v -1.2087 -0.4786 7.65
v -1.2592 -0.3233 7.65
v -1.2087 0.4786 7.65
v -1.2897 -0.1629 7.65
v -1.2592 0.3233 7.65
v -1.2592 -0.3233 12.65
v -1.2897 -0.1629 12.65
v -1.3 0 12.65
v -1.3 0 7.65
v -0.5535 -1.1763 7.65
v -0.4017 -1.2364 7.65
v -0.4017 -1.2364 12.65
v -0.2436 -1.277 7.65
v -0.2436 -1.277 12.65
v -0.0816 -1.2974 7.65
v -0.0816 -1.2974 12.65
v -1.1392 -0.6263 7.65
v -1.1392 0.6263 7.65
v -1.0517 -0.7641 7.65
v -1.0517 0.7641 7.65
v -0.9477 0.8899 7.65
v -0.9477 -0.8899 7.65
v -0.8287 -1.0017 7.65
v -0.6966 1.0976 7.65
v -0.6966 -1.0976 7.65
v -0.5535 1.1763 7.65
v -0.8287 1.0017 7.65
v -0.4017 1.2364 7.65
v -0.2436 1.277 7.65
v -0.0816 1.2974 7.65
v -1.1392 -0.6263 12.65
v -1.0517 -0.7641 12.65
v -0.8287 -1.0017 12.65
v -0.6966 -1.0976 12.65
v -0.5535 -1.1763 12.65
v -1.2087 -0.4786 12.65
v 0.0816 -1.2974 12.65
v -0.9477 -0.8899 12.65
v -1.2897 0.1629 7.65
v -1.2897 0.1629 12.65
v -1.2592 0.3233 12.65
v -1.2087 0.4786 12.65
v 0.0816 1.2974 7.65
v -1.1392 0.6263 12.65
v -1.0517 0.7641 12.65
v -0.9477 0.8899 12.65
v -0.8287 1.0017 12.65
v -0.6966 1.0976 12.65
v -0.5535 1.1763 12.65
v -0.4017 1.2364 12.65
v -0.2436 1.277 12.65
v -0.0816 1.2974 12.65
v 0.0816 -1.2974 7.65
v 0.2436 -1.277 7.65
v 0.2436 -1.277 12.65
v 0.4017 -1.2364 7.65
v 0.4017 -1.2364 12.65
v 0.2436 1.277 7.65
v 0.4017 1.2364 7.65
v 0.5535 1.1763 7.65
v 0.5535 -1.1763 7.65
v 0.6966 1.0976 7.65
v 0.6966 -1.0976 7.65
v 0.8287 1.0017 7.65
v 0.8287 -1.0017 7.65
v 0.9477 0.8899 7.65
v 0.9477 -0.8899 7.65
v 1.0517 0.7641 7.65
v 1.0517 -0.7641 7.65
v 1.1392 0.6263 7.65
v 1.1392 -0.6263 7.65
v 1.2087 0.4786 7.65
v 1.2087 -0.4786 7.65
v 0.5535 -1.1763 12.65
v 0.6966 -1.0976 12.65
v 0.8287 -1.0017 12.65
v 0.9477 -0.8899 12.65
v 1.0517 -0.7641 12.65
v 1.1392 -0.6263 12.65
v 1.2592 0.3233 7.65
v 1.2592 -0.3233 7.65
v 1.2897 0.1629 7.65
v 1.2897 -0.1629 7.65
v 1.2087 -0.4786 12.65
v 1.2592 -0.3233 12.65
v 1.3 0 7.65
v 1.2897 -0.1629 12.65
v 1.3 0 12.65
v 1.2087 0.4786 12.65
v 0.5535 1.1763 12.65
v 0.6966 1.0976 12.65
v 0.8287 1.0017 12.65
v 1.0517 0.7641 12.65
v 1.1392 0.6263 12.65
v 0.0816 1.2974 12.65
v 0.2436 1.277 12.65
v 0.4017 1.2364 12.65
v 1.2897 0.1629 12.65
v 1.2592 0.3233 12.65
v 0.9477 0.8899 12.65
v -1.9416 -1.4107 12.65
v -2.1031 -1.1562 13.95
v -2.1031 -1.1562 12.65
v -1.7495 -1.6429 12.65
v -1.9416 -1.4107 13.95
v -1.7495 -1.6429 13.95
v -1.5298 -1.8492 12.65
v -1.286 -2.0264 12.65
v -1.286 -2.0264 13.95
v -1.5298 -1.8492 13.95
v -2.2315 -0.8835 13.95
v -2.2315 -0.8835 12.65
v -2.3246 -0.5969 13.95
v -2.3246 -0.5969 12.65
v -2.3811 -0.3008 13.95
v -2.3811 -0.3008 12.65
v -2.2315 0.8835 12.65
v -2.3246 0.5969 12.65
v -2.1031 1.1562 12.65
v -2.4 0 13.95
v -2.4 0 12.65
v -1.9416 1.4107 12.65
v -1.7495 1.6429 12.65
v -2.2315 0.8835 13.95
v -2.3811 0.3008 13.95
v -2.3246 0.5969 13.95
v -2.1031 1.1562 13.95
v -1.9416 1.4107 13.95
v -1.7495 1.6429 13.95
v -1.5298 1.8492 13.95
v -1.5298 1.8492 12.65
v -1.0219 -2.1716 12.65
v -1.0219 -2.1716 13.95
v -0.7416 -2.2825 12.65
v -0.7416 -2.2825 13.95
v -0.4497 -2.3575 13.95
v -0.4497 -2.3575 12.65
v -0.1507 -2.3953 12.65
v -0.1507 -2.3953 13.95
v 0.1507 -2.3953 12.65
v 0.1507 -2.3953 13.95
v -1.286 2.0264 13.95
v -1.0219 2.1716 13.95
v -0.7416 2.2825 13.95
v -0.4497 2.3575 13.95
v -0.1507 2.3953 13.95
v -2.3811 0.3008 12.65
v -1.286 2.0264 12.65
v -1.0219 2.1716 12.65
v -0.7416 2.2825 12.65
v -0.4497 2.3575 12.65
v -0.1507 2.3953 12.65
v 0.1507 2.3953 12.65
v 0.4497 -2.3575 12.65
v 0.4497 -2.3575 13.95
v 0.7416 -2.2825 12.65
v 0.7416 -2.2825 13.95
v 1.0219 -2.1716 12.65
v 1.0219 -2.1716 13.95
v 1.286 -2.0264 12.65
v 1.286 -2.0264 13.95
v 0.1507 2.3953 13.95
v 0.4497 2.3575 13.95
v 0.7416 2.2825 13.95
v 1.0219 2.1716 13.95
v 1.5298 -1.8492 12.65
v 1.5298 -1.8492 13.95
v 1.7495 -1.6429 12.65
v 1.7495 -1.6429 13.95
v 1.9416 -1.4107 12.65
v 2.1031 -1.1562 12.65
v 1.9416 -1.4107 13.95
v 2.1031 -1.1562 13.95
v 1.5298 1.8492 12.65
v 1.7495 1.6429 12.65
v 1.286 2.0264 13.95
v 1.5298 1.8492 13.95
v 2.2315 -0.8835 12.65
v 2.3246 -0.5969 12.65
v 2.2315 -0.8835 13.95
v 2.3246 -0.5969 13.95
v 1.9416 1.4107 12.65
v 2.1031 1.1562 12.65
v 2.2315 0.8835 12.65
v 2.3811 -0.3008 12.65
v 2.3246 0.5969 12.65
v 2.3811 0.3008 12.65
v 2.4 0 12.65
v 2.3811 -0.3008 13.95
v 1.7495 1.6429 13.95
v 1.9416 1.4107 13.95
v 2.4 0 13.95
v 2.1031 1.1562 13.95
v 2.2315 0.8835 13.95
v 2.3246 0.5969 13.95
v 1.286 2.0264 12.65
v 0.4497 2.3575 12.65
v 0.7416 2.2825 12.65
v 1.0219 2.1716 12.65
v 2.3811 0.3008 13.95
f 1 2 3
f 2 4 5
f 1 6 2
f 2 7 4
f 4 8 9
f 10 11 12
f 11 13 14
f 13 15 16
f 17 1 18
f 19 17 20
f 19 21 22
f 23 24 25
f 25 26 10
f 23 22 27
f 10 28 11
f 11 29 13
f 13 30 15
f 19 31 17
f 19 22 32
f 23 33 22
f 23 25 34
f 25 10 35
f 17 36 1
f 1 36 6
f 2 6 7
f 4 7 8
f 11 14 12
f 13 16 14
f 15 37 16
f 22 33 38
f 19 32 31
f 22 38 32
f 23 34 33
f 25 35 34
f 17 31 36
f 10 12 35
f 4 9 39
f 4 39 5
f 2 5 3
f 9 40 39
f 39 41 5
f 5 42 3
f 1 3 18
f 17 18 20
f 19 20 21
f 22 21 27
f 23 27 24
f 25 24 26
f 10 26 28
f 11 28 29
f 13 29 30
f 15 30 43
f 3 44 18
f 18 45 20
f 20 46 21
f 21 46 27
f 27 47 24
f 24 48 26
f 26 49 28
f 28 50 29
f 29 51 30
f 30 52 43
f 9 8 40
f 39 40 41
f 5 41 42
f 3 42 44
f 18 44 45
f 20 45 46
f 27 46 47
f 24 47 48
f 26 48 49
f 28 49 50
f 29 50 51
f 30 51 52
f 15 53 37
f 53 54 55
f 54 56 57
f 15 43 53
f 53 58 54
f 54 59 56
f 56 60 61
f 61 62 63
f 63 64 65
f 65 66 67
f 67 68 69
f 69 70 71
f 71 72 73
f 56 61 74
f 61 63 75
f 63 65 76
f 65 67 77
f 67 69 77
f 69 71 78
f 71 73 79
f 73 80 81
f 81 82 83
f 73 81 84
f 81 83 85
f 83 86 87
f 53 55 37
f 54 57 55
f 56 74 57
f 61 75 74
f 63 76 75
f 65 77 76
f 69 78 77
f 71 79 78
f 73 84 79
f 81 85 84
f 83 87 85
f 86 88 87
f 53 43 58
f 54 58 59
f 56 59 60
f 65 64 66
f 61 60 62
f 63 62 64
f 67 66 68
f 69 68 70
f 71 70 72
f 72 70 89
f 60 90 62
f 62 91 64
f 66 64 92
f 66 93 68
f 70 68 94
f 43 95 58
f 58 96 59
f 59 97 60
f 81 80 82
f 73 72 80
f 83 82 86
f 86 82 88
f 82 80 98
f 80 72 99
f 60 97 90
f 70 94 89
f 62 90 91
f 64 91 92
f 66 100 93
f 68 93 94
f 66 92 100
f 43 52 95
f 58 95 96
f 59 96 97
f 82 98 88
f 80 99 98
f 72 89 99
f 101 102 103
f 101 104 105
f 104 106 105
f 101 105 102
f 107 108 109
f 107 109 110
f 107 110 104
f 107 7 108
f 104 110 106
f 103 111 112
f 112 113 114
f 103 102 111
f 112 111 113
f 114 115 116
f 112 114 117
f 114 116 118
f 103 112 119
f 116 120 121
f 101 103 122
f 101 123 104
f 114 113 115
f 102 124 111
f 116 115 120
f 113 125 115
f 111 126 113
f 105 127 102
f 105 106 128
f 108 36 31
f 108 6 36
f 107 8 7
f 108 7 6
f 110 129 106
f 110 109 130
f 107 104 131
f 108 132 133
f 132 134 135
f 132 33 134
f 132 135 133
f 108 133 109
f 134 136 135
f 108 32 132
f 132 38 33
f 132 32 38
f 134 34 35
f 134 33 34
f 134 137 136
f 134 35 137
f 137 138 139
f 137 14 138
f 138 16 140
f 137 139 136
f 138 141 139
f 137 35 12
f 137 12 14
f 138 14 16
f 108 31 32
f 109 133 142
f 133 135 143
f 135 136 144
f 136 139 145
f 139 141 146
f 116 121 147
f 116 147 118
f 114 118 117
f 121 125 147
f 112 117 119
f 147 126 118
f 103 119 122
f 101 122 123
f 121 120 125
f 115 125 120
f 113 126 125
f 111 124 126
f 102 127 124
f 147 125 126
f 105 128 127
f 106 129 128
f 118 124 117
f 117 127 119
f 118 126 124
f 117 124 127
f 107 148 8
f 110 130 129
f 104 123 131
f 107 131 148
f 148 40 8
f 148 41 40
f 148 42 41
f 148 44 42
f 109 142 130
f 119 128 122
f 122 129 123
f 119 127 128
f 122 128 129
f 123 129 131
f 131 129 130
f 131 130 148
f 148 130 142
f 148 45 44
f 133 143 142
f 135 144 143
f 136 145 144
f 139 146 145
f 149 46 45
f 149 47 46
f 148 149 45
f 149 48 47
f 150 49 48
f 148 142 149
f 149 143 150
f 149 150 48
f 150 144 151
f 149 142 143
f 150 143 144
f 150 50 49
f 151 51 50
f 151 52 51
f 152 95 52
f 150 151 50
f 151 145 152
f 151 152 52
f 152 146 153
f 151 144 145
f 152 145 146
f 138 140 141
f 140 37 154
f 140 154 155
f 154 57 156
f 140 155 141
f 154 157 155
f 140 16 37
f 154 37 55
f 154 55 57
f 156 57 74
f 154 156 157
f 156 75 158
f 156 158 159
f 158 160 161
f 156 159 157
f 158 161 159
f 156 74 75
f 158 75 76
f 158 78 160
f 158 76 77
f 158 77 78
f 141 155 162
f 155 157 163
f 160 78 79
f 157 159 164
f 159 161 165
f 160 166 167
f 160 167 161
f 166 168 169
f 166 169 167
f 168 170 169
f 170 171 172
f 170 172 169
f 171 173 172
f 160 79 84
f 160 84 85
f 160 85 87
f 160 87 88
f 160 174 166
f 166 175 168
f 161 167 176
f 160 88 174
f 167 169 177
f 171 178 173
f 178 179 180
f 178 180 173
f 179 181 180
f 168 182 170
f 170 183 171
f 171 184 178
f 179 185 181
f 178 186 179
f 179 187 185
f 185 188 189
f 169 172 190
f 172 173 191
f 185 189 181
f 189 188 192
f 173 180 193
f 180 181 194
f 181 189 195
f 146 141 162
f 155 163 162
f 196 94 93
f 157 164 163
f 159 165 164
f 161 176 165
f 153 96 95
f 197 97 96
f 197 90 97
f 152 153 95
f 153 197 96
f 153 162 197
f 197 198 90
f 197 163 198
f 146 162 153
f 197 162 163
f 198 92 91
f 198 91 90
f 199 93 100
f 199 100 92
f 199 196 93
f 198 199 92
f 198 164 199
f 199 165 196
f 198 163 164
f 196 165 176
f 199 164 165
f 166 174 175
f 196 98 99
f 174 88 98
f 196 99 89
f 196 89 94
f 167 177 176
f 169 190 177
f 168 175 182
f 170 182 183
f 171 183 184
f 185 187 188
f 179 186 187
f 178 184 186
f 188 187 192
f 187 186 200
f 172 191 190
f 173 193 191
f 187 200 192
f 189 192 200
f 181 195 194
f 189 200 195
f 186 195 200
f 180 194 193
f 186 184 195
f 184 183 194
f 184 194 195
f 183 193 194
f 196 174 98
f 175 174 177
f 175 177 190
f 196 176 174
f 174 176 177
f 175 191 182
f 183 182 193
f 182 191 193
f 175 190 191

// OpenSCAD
$fn = 50;

difference() {
	union() {
		translate(v = [0, 0, 7.65]) {
			cylinder(h = 5, r = 1.3);
		}
		translate(v = [0, 0, 12.65]) {
			cylinder(h = 1.3, r = 2.4);
		}
	}
	union();
}
